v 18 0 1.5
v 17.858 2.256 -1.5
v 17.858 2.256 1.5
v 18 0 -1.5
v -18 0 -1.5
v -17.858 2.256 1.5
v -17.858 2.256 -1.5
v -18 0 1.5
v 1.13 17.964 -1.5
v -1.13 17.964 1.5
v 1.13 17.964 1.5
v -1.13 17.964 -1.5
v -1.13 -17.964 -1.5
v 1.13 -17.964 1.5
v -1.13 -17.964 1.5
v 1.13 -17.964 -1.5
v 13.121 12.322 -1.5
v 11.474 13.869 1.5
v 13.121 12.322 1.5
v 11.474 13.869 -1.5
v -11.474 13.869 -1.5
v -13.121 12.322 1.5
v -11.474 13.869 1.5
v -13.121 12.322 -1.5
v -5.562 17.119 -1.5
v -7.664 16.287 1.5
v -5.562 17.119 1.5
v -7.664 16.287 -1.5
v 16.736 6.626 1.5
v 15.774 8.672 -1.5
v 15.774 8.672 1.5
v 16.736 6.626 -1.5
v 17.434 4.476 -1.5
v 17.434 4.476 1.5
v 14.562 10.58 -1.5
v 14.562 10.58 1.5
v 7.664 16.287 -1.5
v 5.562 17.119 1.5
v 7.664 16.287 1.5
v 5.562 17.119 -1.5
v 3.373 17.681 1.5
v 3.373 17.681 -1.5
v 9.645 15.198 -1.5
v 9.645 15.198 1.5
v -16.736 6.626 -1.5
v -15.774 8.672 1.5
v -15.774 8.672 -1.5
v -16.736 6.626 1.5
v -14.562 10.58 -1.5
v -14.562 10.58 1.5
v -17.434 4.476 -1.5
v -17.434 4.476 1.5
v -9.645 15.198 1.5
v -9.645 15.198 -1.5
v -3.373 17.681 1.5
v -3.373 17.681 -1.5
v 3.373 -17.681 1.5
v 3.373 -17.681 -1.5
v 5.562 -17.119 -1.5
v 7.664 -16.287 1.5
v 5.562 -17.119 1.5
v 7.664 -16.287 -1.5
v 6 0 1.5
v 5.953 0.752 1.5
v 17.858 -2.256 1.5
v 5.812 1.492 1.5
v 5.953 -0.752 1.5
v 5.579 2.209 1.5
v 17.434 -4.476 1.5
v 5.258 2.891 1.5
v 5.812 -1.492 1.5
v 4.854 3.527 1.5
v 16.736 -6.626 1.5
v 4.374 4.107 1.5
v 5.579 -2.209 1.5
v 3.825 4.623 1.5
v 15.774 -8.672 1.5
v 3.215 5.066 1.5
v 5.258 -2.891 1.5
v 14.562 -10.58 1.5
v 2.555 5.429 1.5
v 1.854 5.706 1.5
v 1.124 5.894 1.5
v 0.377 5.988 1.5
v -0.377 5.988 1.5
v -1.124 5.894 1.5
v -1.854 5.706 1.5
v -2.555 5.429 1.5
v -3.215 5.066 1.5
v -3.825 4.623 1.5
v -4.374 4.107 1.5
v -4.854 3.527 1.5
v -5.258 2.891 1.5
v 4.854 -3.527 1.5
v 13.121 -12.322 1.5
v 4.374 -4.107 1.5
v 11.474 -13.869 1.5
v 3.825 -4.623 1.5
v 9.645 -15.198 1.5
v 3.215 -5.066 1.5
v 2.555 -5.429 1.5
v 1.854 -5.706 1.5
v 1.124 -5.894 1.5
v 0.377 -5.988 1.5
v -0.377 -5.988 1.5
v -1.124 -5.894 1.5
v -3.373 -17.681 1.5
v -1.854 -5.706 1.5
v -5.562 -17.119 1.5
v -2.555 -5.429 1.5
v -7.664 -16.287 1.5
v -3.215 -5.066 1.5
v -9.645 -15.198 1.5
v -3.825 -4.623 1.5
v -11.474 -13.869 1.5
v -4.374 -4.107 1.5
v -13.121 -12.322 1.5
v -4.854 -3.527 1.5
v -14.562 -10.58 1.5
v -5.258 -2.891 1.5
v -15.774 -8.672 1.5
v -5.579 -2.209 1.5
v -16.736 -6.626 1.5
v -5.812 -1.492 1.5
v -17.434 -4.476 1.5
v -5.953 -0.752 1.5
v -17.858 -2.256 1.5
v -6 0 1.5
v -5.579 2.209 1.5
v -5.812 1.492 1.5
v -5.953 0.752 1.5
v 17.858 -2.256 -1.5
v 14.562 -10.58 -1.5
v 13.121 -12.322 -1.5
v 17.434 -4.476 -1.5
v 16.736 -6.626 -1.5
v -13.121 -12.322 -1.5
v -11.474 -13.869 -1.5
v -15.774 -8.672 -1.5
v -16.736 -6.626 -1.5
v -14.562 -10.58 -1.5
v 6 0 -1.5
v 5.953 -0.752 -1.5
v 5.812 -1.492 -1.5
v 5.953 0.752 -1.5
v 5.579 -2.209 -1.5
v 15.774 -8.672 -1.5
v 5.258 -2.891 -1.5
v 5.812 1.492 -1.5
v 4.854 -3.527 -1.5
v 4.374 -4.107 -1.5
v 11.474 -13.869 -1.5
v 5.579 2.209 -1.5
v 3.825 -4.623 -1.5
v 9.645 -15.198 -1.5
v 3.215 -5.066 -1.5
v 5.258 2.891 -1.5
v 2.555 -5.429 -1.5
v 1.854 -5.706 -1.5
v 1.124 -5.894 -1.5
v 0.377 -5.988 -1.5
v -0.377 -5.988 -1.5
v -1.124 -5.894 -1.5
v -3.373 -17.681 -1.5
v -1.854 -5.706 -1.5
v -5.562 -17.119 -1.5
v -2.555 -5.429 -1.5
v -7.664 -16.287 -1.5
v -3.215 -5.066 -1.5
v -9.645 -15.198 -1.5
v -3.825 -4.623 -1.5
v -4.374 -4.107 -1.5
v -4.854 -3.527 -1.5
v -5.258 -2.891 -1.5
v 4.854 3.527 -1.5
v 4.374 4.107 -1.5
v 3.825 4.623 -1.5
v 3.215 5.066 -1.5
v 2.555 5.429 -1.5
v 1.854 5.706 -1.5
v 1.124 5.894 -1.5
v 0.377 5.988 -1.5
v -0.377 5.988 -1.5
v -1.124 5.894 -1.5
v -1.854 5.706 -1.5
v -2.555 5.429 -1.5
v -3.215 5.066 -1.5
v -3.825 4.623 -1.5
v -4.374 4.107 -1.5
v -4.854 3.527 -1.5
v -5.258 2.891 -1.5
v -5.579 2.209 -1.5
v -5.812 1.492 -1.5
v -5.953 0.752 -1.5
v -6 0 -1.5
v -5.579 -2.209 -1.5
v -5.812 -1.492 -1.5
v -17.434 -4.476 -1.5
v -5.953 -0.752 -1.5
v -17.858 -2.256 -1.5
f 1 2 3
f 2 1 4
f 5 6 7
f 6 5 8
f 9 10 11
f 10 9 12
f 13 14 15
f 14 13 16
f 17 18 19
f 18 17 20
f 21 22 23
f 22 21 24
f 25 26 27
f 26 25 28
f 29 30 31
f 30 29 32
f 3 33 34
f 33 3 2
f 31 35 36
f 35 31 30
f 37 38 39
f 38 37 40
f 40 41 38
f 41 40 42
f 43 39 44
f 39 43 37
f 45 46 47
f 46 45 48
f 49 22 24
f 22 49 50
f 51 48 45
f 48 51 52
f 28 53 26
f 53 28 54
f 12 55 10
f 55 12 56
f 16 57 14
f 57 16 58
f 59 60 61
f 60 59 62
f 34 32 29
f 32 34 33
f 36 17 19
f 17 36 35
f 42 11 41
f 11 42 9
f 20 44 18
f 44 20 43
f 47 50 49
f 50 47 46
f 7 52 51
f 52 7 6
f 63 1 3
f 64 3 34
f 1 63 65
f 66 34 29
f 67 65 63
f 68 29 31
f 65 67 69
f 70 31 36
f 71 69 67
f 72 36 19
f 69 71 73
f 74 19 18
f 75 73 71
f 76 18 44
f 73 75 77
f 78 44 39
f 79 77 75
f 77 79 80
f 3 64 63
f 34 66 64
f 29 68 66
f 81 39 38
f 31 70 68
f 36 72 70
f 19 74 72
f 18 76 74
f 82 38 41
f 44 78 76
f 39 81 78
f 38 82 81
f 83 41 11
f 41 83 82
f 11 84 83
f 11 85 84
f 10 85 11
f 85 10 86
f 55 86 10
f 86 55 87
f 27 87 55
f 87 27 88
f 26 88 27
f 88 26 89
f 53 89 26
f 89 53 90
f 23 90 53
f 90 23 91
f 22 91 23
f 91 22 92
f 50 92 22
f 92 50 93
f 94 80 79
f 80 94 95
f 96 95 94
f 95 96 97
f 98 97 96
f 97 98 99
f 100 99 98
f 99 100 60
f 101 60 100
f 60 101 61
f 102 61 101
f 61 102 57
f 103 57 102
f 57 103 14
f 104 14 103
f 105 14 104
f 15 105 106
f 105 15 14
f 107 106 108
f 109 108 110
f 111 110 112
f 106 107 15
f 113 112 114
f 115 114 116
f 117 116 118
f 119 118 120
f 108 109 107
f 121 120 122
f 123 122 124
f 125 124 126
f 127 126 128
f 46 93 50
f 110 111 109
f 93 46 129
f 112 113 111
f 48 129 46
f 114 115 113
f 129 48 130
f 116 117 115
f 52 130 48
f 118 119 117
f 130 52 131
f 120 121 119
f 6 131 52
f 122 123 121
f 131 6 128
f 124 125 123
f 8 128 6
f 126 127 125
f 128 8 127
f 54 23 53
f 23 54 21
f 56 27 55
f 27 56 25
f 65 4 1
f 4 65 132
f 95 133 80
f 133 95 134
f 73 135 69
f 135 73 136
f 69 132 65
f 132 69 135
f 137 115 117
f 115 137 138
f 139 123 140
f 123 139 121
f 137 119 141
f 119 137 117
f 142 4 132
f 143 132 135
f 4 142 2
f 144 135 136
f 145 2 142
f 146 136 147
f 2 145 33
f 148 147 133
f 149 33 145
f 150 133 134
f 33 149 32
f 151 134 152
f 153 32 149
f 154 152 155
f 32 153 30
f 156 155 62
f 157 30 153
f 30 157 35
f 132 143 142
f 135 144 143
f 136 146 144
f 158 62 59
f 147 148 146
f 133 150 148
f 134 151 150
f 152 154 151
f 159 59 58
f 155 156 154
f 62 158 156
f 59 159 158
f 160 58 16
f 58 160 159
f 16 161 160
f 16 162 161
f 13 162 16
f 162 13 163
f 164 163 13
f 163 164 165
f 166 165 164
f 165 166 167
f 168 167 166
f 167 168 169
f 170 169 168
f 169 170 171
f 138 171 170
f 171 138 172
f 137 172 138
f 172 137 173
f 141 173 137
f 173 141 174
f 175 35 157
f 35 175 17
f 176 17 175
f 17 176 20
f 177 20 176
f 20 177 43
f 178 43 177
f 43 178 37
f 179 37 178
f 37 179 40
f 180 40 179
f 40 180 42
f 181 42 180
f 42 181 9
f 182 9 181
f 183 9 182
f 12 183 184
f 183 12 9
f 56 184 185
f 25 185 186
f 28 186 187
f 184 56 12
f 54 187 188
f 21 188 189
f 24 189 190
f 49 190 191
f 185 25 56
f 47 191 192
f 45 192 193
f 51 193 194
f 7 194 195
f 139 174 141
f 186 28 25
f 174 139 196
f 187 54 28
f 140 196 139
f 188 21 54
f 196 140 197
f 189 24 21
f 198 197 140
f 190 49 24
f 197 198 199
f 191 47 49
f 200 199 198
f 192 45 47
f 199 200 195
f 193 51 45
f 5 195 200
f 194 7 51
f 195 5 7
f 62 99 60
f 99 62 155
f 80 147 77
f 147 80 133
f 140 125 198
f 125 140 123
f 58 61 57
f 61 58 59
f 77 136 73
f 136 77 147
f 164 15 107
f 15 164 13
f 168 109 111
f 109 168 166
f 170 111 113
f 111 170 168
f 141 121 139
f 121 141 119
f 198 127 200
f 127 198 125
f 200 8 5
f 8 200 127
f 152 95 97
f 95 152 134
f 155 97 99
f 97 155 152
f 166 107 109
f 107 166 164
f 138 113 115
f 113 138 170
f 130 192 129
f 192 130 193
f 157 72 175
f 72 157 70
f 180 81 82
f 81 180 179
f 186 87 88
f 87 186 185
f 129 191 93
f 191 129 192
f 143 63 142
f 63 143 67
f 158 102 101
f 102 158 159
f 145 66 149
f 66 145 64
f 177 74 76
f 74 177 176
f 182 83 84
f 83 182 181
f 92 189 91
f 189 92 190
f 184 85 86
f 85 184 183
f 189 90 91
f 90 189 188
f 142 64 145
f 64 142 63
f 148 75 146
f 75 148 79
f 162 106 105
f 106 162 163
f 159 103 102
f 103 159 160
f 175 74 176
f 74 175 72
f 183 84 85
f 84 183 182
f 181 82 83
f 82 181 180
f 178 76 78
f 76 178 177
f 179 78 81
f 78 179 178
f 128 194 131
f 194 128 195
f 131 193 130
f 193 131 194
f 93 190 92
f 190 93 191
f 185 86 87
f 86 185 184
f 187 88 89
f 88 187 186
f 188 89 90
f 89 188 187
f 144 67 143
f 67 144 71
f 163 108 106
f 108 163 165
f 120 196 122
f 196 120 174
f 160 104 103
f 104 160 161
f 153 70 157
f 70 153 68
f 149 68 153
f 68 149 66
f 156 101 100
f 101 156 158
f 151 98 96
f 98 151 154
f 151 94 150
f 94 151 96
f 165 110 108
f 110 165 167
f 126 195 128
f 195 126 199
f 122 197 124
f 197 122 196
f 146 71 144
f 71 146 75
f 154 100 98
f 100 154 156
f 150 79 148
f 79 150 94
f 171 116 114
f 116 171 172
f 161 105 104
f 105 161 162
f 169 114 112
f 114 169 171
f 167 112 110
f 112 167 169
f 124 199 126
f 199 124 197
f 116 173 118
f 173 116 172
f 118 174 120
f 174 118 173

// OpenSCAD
$fn = 50;


difference() {
	union() {
		translate(v = [0, 0, -1.5000000000]) {
			cylinder(h = 3, r = 18.0000000000);
		}
	}
	union() {
		translate(v = [0, 0, -100.0000000000]) {
			cylinder(h = 200, r = 6);
		}
	}
}
